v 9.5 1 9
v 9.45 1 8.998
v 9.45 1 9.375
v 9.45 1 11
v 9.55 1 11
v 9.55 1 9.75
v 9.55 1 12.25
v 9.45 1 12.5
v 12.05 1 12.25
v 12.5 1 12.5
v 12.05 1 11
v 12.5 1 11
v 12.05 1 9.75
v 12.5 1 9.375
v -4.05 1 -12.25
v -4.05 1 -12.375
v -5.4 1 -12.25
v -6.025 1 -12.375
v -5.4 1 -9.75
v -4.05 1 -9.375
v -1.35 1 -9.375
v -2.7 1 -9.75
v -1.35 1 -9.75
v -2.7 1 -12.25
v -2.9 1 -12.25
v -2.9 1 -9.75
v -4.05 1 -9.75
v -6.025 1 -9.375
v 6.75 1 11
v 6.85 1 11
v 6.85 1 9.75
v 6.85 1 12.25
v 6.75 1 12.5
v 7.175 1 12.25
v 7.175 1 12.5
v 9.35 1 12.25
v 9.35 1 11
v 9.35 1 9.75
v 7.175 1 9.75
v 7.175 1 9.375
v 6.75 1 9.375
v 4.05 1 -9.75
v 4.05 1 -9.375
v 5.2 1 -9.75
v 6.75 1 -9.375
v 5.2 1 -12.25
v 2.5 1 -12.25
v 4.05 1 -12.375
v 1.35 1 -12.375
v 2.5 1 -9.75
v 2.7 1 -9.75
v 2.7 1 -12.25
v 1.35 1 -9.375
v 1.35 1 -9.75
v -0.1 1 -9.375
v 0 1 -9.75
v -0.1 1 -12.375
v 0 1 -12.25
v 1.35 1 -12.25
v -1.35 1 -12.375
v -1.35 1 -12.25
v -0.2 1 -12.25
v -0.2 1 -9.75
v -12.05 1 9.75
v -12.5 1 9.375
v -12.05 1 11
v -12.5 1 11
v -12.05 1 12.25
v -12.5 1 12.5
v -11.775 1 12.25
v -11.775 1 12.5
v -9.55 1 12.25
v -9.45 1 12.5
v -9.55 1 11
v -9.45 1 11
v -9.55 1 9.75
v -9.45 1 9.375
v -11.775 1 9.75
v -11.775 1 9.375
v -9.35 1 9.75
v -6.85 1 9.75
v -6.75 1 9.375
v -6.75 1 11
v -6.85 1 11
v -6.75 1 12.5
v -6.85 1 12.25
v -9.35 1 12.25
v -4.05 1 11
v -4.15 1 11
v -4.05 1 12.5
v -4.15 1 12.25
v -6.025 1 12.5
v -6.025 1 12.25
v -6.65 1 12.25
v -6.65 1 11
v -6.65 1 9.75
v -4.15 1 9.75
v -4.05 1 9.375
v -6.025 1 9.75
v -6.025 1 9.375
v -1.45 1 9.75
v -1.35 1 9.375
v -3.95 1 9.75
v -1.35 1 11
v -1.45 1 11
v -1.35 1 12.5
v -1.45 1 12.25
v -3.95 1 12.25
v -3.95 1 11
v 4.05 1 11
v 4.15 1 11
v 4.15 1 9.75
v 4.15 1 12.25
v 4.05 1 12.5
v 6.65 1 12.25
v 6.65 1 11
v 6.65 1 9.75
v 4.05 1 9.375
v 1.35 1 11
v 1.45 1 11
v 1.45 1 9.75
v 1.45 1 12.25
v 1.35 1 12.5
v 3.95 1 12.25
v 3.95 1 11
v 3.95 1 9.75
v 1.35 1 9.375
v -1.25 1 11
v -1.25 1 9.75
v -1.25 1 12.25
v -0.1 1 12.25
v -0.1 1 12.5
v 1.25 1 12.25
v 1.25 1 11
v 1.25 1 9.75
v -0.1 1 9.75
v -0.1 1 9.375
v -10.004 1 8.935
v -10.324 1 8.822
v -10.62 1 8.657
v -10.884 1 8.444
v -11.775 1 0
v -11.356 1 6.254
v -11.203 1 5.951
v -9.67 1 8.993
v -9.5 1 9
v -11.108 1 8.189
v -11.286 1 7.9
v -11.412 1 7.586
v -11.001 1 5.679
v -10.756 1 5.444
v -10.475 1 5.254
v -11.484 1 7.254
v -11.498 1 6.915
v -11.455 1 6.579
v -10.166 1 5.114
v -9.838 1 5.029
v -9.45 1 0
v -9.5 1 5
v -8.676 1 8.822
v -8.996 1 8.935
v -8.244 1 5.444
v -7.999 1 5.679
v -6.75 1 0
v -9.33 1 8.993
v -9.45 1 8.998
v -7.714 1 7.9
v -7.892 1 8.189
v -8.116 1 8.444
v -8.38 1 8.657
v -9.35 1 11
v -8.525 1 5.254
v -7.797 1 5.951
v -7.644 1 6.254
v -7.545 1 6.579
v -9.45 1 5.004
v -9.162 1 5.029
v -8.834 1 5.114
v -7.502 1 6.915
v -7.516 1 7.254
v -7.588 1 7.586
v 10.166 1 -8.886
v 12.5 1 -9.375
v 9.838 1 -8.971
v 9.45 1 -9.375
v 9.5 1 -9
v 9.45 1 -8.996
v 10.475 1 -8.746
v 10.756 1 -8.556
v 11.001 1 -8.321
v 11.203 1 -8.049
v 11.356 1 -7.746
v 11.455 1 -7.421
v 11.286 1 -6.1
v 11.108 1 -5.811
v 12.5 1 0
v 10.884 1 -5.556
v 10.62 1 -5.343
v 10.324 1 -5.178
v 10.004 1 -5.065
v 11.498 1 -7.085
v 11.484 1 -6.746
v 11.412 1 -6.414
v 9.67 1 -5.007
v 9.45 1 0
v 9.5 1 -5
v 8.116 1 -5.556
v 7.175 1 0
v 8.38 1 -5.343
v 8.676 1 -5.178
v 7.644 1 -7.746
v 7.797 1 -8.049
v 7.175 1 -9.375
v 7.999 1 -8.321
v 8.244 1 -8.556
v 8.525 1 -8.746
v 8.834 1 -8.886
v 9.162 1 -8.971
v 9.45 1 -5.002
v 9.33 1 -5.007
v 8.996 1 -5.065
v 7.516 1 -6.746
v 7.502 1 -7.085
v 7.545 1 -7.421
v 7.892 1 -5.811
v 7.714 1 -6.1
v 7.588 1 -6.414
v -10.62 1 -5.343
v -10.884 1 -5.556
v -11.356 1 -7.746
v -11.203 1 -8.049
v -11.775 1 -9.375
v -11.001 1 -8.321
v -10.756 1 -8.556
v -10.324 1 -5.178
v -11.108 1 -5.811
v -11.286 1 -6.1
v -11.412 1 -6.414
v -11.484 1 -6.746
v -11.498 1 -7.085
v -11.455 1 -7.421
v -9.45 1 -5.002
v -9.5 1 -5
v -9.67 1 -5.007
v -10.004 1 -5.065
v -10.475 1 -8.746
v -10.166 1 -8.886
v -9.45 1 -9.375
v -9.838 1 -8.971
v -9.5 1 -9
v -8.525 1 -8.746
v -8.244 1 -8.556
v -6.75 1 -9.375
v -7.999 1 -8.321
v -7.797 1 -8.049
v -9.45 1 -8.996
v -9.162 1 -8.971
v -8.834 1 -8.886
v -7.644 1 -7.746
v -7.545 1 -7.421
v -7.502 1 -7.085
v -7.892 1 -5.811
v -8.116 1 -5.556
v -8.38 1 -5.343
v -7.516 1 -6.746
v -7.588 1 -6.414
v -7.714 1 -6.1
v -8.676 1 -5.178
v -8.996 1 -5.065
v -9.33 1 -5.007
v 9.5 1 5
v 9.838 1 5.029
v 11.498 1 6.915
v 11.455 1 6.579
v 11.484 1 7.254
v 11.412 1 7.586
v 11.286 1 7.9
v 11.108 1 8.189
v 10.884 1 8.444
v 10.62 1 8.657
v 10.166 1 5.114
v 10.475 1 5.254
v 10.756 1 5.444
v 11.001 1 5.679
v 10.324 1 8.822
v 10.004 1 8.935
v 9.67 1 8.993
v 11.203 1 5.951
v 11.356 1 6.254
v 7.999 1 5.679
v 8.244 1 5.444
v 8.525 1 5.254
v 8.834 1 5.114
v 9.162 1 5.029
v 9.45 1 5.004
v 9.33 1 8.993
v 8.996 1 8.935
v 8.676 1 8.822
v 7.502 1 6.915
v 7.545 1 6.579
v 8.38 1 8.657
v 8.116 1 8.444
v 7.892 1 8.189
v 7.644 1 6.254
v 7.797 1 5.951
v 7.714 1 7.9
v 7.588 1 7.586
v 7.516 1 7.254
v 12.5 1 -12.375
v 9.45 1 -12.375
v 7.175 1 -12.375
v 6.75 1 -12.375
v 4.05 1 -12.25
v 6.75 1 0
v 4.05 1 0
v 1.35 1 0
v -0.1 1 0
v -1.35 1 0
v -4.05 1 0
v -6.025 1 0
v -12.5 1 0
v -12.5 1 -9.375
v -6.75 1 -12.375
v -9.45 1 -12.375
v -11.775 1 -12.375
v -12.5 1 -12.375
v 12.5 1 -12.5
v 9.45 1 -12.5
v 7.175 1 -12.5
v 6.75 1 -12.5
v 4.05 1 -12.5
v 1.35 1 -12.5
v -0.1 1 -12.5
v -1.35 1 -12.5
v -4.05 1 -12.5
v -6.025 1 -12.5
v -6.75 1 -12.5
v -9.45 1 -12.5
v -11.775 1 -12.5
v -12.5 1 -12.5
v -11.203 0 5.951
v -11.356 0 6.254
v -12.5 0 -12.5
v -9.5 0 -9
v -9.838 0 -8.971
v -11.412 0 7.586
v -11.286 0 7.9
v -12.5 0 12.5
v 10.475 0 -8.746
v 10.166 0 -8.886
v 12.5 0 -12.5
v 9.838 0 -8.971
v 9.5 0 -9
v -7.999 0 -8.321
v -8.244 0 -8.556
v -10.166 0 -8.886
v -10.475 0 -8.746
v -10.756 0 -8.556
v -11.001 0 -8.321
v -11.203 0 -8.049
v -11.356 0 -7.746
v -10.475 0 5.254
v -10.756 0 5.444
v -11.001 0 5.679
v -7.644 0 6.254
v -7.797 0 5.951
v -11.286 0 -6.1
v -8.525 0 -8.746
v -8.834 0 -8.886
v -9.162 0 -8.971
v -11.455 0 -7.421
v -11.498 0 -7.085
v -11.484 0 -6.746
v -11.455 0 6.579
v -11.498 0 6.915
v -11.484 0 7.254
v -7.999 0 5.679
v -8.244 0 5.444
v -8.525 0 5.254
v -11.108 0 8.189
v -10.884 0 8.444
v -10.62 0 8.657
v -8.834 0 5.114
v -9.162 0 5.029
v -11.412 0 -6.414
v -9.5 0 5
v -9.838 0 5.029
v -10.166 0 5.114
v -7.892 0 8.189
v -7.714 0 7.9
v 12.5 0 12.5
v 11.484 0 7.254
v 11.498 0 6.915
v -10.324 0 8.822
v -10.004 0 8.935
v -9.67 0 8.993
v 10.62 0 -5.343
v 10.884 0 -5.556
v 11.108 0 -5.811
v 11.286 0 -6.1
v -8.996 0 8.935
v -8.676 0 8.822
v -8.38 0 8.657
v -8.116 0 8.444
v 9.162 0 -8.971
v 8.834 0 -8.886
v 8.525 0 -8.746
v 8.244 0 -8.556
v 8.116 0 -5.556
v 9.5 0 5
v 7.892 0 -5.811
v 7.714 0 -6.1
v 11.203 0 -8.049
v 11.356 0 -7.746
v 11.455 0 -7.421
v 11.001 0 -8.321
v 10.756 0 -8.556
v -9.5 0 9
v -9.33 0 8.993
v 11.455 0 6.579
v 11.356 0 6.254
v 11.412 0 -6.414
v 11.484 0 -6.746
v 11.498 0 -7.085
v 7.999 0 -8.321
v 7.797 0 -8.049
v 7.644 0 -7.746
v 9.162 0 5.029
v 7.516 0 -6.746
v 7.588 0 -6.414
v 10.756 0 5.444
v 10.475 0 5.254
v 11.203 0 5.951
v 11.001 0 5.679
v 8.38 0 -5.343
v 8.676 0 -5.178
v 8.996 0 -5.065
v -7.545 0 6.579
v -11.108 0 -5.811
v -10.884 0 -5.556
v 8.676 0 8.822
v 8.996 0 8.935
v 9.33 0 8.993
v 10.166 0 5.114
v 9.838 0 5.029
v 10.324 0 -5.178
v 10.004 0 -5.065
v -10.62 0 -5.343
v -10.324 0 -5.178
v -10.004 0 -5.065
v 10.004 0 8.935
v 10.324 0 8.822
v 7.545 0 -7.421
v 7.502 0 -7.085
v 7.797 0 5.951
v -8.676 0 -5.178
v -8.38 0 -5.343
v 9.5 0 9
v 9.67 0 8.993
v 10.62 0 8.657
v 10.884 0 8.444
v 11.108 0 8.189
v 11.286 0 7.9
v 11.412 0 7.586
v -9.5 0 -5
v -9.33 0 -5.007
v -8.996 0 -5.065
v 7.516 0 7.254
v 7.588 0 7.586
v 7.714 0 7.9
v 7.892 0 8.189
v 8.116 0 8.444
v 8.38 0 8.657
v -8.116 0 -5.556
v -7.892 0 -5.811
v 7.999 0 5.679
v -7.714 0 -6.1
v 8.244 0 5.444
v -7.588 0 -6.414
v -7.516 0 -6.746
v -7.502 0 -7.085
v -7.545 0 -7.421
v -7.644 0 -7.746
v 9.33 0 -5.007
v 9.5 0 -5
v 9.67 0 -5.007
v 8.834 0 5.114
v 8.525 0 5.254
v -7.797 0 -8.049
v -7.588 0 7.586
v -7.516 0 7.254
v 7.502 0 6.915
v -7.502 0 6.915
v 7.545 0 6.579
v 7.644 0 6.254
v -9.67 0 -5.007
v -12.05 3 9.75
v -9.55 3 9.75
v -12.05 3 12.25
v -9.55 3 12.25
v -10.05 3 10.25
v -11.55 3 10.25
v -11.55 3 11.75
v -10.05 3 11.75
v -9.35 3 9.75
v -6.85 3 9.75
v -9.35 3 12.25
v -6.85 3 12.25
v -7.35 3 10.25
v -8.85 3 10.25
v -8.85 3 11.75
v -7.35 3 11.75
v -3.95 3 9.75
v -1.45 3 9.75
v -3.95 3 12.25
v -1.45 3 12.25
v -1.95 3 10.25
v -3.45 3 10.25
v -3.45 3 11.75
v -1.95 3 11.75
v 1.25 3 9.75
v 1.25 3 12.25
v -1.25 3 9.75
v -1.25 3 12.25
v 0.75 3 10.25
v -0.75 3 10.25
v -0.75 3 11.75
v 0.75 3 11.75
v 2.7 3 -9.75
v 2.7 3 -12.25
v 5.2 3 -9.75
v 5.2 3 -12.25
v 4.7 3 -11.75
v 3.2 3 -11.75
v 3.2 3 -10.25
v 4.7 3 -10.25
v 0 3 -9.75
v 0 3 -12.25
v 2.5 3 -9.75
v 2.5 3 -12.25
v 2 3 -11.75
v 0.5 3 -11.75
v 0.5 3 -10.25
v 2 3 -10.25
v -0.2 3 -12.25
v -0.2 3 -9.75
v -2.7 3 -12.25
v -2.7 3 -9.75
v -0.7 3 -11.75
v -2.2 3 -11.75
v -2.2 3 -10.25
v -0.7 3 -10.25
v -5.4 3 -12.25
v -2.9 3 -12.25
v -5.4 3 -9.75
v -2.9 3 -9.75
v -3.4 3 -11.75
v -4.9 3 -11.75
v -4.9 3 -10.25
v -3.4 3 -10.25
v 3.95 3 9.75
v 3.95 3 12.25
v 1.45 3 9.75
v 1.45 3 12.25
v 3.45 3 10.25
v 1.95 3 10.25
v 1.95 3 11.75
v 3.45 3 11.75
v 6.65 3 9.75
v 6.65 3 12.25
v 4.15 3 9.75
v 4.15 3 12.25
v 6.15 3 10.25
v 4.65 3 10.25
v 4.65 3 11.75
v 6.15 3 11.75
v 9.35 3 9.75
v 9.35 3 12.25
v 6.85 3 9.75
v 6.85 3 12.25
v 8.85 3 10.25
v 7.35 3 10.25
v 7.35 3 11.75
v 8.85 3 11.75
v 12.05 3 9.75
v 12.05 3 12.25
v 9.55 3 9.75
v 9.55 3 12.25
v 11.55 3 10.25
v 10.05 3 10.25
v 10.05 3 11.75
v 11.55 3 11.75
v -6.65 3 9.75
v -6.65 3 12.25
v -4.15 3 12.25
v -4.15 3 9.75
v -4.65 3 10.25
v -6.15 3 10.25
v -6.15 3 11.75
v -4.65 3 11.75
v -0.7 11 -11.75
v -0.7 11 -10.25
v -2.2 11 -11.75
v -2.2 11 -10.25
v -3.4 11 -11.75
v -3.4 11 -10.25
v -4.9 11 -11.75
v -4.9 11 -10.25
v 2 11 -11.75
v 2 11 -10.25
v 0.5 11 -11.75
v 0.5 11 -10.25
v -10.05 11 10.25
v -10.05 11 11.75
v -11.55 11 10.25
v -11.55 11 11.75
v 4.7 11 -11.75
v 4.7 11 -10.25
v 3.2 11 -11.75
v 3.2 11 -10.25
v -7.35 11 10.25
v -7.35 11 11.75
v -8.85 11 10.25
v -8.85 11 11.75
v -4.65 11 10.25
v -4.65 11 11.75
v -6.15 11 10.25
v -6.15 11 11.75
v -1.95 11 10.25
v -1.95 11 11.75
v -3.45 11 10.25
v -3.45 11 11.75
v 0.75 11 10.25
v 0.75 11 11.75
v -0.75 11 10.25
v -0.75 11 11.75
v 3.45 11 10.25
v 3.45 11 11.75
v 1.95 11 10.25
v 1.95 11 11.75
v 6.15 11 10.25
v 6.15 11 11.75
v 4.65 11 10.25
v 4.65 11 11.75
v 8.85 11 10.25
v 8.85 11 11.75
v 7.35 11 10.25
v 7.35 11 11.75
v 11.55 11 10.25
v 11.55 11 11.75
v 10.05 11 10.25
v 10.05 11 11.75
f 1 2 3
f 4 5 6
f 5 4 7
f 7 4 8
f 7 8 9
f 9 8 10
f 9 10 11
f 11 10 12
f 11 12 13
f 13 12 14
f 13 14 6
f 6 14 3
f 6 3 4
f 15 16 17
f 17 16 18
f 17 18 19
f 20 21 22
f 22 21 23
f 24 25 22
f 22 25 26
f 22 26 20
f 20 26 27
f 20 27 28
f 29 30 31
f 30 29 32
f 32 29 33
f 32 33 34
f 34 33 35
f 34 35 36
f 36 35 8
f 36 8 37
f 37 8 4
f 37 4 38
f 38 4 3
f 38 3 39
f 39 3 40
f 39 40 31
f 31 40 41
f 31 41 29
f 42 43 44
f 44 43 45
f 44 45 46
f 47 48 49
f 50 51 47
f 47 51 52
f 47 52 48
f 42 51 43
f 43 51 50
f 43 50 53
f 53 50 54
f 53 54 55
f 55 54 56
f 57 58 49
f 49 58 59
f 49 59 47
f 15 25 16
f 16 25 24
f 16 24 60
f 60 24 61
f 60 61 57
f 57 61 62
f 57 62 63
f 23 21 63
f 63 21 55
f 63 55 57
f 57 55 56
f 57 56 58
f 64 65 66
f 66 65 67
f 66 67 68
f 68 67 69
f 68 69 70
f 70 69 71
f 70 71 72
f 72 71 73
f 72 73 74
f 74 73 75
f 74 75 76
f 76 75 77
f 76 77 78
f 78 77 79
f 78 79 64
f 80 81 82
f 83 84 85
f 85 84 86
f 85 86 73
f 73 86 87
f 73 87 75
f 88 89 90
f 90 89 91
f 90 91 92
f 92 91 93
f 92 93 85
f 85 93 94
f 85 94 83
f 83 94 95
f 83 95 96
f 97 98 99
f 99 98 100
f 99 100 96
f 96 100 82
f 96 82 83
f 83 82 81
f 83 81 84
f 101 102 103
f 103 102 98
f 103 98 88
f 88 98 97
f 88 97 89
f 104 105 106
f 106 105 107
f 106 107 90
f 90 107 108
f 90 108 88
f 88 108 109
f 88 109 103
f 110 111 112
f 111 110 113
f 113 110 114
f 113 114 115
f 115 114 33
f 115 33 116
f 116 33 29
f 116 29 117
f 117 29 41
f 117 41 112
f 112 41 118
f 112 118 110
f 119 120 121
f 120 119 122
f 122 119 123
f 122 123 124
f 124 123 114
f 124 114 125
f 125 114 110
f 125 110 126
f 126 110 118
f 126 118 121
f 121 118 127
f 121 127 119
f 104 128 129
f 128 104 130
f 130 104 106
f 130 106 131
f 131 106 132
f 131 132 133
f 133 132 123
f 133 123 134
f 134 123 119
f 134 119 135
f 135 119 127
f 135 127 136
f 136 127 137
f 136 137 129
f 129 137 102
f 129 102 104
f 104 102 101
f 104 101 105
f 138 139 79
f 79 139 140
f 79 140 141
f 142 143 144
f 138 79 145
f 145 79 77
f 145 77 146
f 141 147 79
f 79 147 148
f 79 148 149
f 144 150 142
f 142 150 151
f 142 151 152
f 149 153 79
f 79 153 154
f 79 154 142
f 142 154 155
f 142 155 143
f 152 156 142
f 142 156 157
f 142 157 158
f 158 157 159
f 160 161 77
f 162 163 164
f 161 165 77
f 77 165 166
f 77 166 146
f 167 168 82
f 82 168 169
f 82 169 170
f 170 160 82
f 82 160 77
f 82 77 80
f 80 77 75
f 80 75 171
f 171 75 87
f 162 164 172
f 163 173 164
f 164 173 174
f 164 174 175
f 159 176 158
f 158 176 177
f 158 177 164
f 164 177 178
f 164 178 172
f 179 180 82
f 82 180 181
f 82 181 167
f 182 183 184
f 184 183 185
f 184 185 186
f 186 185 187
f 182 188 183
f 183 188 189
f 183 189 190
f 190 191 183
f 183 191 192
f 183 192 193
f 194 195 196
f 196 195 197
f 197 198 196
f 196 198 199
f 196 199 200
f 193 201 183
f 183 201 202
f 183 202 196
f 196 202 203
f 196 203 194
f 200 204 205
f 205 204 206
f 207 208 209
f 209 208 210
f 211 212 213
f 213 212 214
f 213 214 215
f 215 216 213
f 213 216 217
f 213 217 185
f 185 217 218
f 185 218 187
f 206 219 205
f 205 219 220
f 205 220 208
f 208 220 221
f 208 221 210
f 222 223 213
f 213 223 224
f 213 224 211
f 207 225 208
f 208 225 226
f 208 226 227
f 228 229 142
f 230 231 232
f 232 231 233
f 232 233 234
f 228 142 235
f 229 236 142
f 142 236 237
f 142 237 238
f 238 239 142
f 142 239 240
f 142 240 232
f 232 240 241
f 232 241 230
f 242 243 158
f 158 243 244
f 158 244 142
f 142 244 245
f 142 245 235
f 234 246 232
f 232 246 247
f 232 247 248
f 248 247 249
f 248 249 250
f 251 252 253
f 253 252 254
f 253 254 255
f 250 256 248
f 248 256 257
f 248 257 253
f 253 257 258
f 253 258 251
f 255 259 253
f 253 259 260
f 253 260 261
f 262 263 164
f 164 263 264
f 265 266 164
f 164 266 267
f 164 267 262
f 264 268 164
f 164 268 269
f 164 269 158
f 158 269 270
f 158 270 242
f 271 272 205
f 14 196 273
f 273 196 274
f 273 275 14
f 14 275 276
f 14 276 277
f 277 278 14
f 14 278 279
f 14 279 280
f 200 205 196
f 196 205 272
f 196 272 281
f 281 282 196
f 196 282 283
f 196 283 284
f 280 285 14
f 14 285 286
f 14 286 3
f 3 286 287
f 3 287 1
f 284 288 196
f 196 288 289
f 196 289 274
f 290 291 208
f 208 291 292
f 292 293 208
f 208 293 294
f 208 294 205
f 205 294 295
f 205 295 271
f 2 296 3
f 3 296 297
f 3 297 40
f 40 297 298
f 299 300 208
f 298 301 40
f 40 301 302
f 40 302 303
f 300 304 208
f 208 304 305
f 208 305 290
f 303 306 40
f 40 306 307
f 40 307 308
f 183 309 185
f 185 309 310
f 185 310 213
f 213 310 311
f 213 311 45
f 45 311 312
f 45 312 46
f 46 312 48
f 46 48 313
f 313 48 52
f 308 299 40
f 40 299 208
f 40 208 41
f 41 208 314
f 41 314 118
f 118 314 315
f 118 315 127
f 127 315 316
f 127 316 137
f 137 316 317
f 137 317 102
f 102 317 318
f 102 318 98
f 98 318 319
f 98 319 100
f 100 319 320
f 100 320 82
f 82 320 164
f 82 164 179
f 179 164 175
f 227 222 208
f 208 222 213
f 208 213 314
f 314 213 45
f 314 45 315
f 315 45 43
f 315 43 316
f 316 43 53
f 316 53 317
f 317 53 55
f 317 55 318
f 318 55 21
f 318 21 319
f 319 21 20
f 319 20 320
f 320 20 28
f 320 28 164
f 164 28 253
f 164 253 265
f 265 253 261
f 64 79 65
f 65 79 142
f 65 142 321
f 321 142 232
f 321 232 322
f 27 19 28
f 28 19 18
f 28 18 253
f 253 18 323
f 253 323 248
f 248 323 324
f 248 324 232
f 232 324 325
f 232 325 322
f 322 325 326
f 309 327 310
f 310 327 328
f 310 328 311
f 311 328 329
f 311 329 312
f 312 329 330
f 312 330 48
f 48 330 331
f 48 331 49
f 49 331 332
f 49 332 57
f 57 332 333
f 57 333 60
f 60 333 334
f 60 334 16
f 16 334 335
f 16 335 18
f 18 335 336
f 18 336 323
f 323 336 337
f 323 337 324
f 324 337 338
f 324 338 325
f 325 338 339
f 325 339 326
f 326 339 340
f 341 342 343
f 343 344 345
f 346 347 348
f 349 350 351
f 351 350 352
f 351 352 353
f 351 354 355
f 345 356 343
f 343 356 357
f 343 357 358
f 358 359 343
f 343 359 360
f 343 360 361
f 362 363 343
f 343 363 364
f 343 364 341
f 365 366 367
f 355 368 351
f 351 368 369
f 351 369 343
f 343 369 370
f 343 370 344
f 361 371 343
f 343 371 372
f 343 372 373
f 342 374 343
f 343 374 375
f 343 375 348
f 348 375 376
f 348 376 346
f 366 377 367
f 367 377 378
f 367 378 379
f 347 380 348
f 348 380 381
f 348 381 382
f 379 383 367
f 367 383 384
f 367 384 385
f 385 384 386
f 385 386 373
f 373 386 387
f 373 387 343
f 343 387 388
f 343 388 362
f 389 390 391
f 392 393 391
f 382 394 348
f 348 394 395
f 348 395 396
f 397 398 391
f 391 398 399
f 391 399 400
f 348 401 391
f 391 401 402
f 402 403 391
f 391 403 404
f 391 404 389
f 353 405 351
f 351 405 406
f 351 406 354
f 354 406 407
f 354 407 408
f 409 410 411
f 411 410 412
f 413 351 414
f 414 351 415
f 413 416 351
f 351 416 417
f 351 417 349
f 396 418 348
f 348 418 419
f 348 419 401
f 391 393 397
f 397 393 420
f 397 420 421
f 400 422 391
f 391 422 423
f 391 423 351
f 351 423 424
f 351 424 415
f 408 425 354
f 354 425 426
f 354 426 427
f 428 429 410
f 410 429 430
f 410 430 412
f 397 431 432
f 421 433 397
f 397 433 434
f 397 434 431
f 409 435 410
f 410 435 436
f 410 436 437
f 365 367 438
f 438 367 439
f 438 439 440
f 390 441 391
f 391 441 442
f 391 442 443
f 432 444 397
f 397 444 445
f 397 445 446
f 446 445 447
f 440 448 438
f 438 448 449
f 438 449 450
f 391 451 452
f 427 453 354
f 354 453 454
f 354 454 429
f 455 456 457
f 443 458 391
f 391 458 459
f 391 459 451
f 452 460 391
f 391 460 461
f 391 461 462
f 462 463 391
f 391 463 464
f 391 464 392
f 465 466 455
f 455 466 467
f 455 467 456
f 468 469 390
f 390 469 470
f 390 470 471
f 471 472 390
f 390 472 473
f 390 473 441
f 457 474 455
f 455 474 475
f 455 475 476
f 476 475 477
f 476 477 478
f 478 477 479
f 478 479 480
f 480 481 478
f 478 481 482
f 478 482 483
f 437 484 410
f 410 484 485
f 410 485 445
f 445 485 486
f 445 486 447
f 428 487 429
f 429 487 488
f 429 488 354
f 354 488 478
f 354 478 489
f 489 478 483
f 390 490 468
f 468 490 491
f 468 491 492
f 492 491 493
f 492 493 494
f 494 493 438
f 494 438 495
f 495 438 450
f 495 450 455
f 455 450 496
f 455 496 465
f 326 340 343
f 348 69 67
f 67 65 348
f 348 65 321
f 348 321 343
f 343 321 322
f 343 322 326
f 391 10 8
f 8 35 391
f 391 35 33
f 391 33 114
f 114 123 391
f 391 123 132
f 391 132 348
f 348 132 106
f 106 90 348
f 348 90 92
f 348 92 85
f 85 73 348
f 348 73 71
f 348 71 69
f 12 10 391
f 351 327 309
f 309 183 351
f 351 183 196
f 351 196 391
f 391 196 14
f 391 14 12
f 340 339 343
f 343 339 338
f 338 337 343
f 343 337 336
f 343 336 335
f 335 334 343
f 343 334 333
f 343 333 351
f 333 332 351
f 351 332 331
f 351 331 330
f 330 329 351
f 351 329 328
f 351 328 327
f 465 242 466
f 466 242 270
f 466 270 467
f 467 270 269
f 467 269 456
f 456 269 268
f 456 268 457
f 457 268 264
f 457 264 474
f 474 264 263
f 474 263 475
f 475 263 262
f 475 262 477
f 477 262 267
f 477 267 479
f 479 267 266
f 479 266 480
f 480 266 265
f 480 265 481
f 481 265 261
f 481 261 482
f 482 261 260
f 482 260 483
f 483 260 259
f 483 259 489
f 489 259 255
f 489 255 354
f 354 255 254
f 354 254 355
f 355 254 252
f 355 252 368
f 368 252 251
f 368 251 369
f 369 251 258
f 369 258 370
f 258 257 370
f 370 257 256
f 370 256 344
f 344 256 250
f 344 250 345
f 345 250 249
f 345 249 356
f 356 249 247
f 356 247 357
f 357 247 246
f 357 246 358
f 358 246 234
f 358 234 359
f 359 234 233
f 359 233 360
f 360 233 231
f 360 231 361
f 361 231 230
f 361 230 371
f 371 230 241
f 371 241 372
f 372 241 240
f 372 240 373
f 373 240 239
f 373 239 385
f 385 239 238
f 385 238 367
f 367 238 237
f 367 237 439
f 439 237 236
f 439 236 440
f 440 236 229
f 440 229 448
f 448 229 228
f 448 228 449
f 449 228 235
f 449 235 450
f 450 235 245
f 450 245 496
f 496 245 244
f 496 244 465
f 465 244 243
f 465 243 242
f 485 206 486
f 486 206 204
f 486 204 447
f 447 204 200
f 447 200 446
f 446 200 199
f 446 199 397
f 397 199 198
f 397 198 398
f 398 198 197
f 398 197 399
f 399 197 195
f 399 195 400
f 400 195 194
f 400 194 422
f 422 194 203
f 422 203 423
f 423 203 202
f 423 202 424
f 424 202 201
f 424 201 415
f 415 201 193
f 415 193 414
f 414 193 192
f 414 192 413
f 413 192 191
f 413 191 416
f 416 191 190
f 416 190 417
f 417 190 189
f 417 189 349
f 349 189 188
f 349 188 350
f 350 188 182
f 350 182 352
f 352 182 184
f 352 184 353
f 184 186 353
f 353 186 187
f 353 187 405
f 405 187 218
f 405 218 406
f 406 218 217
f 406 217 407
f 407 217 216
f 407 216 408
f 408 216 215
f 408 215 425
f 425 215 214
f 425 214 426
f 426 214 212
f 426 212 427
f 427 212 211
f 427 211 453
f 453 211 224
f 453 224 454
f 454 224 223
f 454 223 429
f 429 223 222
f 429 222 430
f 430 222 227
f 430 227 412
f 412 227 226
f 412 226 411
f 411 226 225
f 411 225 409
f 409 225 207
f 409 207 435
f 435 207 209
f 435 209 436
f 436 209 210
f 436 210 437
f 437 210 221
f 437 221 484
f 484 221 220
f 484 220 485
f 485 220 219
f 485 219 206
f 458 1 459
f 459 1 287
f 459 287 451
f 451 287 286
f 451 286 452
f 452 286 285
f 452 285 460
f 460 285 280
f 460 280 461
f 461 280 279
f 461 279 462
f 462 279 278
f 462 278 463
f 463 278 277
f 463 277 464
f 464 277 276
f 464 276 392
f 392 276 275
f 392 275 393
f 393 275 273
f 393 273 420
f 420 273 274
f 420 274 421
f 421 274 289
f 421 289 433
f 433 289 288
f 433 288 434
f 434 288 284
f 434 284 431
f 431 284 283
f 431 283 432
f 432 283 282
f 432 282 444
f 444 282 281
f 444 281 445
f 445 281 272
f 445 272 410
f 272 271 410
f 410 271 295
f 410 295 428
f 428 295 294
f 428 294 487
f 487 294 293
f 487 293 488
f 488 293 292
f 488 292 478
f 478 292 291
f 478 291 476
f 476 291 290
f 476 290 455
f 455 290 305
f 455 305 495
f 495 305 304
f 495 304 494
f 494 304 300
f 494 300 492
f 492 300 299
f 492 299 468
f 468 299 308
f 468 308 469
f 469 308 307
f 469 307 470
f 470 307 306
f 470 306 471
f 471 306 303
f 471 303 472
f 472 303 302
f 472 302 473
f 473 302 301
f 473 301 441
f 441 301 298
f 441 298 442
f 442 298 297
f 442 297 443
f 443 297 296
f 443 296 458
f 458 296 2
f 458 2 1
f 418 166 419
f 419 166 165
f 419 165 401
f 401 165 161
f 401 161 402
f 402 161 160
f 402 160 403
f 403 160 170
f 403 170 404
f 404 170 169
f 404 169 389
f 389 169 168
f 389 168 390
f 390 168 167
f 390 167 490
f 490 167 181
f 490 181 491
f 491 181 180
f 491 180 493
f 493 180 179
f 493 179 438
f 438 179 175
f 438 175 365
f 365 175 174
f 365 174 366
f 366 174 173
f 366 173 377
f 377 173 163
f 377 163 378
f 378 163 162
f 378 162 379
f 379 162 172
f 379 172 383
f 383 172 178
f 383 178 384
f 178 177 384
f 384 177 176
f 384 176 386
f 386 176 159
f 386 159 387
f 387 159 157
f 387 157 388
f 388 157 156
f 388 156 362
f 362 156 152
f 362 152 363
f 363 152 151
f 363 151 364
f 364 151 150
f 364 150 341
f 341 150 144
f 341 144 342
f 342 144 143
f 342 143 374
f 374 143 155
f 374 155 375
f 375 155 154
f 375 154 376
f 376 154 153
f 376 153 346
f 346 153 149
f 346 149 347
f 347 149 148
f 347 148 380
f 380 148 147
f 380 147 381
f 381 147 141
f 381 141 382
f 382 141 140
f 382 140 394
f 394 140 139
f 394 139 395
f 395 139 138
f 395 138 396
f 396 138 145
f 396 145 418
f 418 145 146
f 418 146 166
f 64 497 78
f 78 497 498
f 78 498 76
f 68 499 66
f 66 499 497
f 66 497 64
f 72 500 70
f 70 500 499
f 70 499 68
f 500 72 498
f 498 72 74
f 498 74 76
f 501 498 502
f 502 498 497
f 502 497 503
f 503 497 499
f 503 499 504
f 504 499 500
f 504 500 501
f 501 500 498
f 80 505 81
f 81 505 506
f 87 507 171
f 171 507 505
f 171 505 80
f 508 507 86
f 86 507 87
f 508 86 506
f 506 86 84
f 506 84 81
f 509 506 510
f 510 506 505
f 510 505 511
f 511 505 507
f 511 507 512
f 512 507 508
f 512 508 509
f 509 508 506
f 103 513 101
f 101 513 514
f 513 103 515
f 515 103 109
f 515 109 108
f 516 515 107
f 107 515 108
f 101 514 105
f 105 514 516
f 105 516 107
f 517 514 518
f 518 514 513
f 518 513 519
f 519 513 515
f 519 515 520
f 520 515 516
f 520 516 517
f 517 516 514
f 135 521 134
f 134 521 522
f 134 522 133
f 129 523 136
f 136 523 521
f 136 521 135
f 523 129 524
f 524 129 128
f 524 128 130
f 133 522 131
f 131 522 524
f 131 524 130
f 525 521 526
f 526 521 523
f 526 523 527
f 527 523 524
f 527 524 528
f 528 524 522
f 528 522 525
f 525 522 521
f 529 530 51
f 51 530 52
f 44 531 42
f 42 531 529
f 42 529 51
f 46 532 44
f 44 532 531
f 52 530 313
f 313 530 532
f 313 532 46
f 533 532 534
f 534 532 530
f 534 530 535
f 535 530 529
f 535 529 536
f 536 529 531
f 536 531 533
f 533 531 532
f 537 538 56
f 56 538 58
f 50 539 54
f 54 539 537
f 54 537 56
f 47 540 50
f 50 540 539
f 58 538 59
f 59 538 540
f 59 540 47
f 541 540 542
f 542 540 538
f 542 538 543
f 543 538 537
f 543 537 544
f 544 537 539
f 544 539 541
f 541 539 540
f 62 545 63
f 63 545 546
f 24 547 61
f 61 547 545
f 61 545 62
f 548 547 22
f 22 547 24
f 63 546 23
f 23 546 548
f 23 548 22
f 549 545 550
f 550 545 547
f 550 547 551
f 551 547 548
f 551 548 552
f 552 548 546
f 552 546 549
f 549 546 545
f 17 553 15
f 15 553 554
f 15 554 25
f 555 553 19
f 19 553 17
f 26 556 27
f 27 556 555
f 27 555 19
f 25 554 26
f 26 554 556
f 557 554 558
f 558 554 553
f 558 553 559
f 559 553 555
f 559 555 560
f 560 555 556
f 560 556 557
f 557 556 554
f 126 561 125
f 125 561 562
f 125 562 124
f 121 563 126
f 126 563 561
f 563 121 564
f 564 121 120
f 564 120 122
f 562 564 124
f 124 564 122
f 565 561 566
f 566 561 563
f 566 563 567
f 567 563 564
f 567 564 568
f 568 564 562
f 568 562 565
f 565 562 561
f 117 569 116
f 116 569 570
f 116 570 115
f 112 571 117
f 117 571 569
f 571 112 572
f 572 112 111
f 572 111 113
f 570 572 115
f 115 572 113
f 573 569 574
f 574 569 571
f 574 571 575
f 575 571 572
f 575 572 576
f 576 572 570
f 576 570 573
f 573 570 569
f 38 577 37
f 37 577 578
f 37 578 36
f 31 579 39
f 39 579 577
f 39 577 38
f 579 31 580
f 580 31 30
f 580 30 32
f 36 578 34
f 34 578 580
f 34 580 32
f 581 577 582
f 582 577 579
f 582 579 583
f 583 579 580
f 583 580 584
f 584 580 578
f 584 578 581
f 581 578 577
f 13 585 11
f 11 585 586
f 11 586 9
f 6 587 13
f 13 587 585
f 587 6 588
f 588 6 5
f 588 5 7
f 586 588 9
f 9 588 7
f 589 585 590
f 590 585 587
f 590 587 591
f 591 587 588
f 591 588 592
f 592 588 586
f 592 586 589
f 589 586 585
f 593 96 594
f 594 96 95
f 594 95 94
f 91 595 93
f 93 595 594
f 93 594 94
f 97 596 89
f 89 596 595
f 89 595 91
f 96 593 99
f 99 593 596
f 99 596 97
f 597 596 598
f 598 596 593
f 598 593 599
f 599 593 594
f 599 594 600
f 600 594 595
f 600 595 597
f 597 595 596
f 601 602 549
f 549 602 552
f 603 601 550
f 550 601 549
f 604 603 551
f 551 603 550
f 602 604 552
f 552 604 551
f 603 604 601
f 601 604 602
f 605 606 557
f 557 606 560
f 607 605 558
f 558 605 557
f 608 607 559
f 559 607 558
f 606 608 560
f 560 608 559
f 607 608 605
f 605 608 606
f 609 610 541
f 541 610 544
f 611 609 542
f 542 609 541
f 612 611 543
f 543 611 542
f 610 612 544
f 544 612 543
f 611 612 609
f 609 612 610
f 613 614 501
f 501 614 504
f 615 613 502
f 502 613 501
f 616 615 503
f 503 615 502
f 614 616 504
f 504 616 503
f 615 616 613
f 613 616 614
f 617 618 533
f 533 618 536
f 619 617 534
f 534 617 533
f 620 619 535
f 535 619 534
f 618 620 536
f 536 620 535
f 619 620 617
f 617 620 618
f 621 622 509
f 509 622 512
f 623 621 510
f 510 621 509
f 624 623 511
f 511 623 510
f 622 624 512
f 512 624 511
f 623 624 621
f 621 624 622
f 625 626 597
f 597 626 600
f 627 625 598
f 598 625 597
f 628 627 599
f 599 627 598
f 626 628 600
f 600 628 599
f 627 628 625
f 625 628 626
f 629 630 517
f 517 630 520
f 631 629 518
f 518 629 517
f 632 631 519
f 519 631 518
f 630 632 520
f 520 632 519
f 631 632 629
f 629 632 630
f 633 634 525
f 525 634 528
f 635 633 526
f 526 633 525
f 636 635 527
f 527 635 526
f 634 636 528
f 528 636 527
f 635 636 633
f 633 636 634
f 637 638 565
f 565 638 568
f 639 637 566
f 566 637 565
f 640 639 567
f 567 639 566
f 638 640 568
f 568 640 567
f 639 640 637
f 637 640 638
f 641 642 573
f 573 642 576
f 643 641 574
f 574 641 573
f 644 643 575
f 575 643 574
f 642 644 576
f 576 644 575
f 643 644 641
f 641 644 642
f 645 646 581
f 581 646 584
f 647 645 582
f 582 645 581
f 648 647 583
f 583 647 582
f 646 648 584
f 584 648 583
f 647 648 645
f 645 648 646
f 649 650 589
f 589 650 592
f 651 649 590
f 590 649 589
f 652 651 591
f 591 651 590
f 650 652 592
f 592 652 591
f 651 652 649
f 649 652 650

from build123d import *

# Parameters (mm, degrees)
SKETCH_1_W      = 25
SKETCH_1_H      = 25
SKETCH_1_R      = 2
SKETCH_1_W_2    = 2.5
SKETCH_1_H_2    = 2.5
EXTRUDE_1_DEPTH = 1
SKETCH_1_4_W    = 2.5
SKETCH_1_4_H    = 2.5
EXTRUDE_3_DEPTH = 3
SKETCH_3_W      = 1.5
SKETCH_3_H      = 1.5
EXTRUDE_4_DEPTH = 8


with BuildPart() as part:
    # Эскиз1 → Бобышка-Вытянуть1 (new body)
    with BuildSketch(Plane(origin=(0, 0, 0), x_dir=(1, 0, 0), z_dir=(0, 1, 0))):
        Rectangle(SKETCH_1_W, SKETCH_1_H)
        with Locations((-9.5, 7)):
            Circle(SKETCH_1_R, mode=Mode.SUBTRACT)
        with Locations((9.5, 7)):
            Circle(SKETCH_1_R, mode=Mode.SUBTRACT)
        with Locations((9.5, -7)):
            Circle(SKETCH_1_R, mode=Mode.SUBTRACT)
        with Locations((-9.5, -7)):
            Circle(SKETCH_1_R, mode=Mode.SUBTRACT)
        with Locations((2.7, -11)):
            Rectangle(SKETCH_1_W_2, SKETCH_1_H_2, mode=Mode.SUBTRACT)
        with Locations((0, -11)):
            Rectangle(SKETCH_1_W_2, SKETCH_1_H_2, mode=Mode.SUBTRACT)
        with Locations((-2.7, -11)):
            Rectangle(SKETCH_1_W_2, SKETCH_1_H_2, mode=Mode.SUBTRACT)
        with Locations((-5.4, -11)):
            Rectangle(SKETCH_1_W_2, SKETCH_1_H_2, mode=Mode.SUBTRACT)
        with Locations((-8.1, -11)):
            Rectangle(SKETCH_1_W_2, SKETCH_1_H_2, mode=Mode.SUBTRACT)
        with Locations((-10.8, -11)):
            Rectangle(SKETCH_1_W_2, SKETCH_1_H_2, mode=Mode.SUBTRACT)
        with Locations((1.25, 11)):
            Rectangle(SKETCH_1_W_2, SKETCH_1_H_2, mode=Mode.SUBTRACT)
        with Locations((-1.45, 11)):
            Rectangle(SKETCH_1_W_2, SKETCH_1_H_2, mode=Mode.SUBTRACT)
        with Locations((3.95, 11)):
            Rectangle(SKETCH_1_W_2, SKETCH_1_H_2, mode=Mode.SUBTRACT)
        with Locations((-4.15, 11)):
            Rectangle(SKETCH_1_W_2, SKETCH_1_H_2, mode=Mode.SUBTRACT)
        with Locations((5.4, -11)):
            Rectangle(SKETCH_1_W_2, SKETCH_1_H_2, mode=Mode.SUBTRACT)
        with Locations((8.1, -11)):
            Rectangle(SKETCH_1_W_2, SKETCH_1_H_2, mode=Mode.SUBTRACT)
        with Locations((10.8, -11)):
            Rectangle(SKETCH_1_W_2, SKETCH_1_H_2, mode=Mode.SUBTRACT)
    extrude(amount=EXTRUDE_1_DEPTH)

    # Эскиз1<4> → Бобышка-Вытянуть3 (add)
    with BuildSketch(Plane(origin=(0, 0, 0), x_dir=(1, 0, 0), z_dir=(0, 1, 0))):
        with Locations((2.7, -11)):
            Rectangle(SKETCH_1_4_W, SKETCH_1_4_H)
        with Locations((0, -11)):
            Rectangle(SKETCH_1_4_W, SKETCH_1_4_H)
        with Locations((-2.7, -11)):
            Rectangle(SKETCH_1_4_W, SKETCH_1_4_H)
        with Locations((-5.4, -11)):
            Rectangle(SKETCH_1_4_W, SKETCH_1_4_H)
        with Locations((-8.1, -11)):
            Rectangle(SKETCH_1_4_W, SKETCH_1_4_H)
        with Locations((-10.8, -11)):
            Rectangle(SKETCH_1_4_W, SKETCH_1_4_H)
        with Locations((1.25, 11)):
            Rectangle(SKETCH_1_4_W, SKETCH_1_4_H)
        with Locations((-1.45, 11)):
            Rectangle(SKETCH_1_4_W, SKETCH_1_4_H)
        with Locations((3.95, 11)):
            Rectangle(SKETCH_1_4_W, SKETCH_1_4_H)
        with Locations((-4.15, 11)):
            Rectangle(SKETCH_1_4_W, SKETCH_1_4_H)
        with Locations((5.4, -11)):
            Rectangle(SKETCH_1_4_W, SKETCH_1_4_H)
        with Locations((8.1, -11)):
            Rectangle(SKETCH_1_4_W, SKETCH_1_4_H)
        with Locations((10.8, -11)):
            Rectangle(SKETCH_1_4_W, SKETCH_1_4_H)
    extrude(amount=EXTRUDE_3_DEPTH)

    # Эскиз3 → Бобышка-Вытянуть4 (add)
    with BuildSketch(Plane(origin=(0, 3, 0), x_dir=(1, 0, 0), z_dir=(0, 1, 0))):
        with Locations((-4.15, 11)):
            Rectangle(SKETCH_3_W, SKETCH_3_H)
        with Locations((-1.45, 11)):
            Rectangle(SKETCH_3_W, SKETCH_3_H)
        with Locations((1.25, 11)):
            Rectangle(SKETCH_3_W, SKETCH_3_H)
        with Locations((3.95, 11)):
            Rectangle(SKETCH_3_W, SKETCH_3_H)
        with Locations((-8.1, -11)):
            Rectangle(SKETCH_3_W, SKETCH_3_H)
        with Locations((-10.8, -11)):
            Rectangle(SKETCH_3_W, SKETCH_3_H)
        with Locations((-5.4, -11)):
            Rectangle(SKETCH_3_W, SKETCH_3_H)
        with Locations((-2.7, -11)):
            Rectangle(SKETCH_3_W, SKETCH_3_H)
        with Locations((0, -11)):
            Rectangle(SKETCH_3_W, SKETCH_3_H)
        with Locations((2.7, -11)):
            Rectangle(SKETCH_3_W, SKETCH_3_H)
        with Locations((5.4, -11)):
            Rectangle(SKETCH_3_W, SKETCH_3_H)
        with Locations((8.1, -11)):
            Rectangle(SKETCH_3_W, SKETCH_3_H)
        with Locations((10.8, -11)):
            Rectangle(SKETCH_3_W, SKETCH_3_H)
    extrude(amount=EXTRUDE_4_DEPTH)


solid = part.part
